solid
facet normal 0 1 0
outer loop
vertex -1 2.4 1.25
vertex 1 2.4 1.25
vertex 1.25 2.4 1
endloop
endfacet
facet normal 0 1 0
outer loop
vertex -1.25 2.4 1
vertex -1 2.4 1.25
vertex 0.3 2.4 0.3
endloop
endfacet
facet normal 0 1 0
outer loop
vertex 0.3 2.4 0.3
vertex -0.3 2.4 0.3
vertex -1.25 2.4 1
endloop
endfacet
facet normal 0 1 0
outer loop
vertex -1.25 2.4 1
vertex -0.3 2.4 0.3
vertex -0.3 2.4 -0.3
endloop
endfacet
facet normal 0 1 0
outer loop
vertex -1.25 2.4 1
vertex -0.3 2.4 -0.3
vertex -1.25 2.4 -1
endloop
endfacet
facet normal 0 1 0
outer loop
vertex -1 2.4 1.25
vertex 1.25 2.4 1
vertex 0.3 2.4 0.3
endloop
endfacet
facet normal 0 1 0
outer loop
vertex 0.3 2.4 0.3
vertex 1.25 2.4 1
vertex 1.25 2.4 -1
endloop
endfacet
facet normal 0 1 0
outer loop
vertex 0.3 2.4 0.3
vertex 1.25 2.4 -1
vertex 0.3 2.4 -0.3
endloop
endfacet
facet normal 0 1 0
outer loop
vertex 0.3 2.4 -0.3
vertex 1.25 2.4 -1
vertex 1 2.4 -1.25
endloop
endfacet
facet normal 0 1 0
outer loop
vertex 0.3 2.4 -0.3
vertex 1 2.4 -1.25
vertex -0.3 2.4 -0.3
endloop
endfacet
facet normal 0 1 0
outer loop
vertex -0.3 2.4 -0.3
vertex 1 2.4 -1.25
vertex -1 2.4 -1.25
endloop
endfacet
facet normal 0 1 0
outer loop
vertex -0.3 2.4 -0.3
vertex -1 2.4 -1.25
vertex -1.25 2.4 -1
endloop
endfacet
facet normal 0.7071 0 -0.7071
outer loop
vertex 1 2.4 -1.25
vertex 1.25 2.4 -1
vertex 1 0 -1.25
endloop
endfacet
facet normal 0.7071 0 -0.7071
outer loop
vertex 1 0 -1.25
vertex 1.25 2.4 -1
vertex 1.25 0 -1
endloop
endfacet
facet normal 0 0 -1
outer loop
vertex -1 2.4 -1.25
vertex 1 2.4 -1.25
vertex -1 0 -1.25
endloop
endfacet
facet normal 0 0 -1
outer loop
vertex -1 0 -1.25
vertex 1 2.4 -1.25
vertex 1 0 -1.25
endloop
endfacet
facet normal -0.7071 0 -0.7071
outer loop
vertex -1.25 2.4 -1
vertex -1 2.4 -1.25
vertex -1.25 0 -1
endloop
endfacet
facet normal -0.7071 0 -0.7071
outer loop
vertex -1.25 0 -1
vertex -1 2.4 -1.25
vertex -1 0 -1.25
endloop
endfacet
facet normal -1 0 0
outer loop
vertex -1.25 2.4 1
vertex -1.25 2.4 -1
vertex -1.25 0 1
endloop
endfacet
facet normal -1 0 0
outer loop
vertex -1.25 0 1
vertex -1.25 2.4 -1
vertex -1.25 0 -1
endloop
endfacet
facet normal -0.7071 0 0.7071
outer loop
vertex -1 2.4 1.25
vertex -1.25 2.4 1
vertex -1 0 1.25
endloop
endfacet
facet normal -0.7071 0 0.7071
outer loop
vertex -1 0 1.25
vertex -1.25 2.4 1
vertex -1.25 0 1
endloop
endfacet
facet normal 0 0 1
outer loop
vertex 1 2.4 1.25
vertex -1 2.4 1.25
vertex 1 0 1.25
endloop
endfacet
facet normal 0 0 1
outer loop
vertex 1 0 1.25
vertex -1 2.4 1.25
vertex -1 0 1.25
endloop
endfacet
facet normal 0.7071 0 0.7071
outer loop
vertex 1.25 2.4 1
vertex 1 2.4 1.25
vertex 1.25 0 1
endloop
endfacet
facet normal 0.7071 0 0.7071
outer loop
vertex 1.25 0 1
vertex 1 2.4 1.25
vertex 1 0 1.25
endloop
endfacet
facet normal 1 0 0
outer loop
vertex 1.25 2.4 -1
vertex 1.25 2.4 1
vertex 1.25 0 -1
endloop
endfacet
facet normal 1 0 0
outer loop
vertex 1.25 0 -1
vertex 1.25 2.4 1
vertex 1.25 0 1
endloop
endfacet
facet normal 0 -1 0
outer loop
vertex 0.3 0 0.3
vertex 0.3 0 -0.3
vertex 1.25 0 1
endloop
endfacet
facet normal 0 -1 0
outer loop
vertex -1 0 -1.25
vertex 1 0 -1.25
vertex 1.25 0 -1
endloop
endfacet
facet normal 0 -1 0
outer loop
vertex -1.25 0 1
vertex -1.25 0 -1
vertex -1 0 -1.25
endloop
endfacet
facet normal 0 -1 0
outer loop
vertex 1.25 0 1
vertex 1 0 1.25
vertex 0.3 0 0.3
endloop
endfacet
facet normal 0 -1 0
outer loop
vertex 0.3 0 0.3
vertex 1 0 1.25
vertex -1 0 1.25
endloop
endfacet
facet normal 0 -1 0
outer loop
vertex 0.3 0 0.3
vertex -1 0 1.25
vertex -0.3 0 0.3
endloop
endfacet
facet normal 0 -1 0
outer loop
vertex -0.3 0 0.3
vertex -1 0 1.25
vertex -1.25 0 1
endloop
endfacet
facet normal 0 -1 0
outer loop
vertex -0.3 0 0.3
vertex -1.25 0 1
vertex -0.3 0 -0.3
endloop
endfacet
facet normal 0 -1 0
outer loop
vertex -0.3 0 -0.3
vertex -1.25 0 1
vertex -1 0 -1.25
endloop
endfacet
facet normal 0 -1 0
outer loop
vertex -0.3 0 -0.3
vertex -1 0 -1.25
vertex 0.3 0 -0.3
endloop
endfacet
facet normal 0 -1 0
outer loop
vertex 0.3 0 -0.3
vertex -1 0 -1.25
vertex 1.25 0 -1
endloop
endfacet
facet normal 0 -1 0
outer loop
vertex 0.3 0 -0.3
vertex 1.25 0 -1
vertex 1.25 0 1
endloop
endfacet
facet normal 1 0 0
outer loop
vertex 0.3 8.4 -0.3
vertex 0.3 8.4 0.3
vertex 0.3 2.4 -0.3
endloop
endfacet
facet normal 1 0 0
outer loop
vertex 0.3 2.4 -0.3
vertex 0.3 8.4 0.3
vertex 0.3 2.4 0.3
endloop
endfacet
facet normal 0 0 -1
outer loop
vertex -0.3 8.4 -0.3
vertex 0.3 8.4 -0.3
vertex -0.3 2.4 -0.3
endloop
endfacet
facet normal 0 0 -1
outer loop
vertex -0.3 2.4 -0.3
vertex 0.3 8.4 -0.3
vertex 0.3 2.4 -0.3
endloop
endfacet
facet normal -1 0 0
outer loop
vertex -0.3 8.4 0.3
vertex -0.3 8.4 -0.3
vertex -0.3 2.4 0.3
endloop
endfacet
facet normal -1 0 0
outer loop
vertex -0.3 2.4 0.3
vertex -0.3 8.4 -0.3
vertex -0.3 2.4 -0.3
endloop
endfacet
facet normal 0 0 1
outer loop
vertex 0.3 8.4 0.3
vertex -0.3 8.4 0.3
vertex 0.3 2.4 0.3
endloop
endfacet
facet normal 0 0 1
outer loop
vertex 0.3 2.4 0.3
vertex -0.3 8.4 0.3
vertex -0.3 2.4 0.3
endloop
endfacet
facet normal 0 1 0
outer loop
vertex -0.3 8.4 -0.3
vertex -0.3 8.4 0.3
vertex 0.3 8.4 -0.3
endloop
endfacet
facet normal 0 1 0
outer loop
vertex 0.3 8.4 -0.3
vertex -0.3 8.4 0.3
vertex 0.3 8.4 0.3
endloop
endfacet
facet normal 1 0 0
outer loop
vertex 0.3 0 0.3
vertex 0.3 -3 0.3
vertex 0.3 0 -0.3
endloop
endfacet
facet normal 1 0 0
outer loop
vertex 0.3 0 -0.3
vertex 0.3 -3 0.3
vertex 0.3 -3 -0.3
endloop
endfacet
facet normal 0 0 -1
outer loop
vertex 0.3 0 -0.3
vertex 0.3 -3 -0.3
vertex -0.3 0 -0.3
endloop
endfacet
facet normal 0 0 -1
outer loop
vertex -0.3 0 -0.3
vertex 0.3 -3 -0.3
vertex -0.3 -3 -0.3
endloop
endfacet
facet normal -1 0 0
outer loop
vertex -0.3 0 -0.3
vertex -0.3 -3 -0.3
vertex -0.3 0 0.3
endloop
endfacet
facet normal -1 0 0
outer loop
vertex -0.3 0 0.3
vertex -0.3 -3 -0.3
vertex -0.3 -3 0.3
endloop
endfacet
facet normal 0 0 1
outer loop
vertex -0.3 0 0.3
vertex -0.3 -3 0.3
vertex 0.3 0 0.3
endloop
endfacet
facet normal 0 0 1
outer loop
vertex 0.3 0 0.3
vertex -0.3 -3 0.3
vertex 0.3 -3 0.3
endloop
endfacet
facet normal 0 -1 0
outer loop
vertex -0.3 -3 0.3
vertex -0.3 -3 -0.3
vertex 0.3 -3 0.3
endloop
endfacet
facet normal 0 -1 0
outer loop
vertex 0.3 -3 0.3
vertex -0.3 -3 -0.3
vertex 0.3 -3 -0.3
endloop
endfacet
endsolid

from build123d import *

# Parameters (mm, degrees)
SALIENTE_EXTRUIR1_DEPTH      = 2.4
CROQUIS2_W                   = 0.6
CROQUIS2_H                   = 0.6
SALIENTE_EXTRUIR2_DEPTH      = 6
SALIENTE_EXTRUIR3_DEPTH      = 3
SALIENTE_EXTRUIR3_DEPTH_BACK = 2
CROQUIS3_W                   = 0.6
CROQUIS3_H                   = 0.6


with BuildPart() as part:
    # Croquis1 → Saliente-Extruir1 (new body)
    with BuildSketch(Plane(origin=(0, 0, 0), x_dir=(1, 0, 0), z_dir=(0, 1, 0))):
        Polygon((-1, 1.25), (1, 1.25), (1.25, 1), (1.25, -1), (1, -1.25), (-1, -1.25), (-1.25, -1), (-1.25, 1), align=None)
    extrude(amount=SALIENTE_EXTRUIR1_DEPTH)

    # Croquis2 → Saliente-Extruir2 (add)
    with BuildSketch(Plane(origin=(0, 2.4, 0), x_dir=(1, 0, 0), z_dir=(0, 1, 0))):
        Rectangle(CROQUIS2_W, CROQUIS2_H)
    extrude(amount=SALIENTE_EXTRUIR2_DEPTH)

    # Croquis3 → Saliente-Extruir3 (add, two sides: drawn at the far end of the back side and taken through both)
    with BuildSketch(Plane.XZ.offset(-SALIENTE_EXTRUIR3_DEPTH_BACK)):
        Rectangle(CROQUIS3_W, CROQUIS3_H)
    extrude(amount=SALIENTE_EXTRUIR3_DEPTH + SALIENTE_EXTRUIR3_DEPTH_BACK)


solid = part.part
